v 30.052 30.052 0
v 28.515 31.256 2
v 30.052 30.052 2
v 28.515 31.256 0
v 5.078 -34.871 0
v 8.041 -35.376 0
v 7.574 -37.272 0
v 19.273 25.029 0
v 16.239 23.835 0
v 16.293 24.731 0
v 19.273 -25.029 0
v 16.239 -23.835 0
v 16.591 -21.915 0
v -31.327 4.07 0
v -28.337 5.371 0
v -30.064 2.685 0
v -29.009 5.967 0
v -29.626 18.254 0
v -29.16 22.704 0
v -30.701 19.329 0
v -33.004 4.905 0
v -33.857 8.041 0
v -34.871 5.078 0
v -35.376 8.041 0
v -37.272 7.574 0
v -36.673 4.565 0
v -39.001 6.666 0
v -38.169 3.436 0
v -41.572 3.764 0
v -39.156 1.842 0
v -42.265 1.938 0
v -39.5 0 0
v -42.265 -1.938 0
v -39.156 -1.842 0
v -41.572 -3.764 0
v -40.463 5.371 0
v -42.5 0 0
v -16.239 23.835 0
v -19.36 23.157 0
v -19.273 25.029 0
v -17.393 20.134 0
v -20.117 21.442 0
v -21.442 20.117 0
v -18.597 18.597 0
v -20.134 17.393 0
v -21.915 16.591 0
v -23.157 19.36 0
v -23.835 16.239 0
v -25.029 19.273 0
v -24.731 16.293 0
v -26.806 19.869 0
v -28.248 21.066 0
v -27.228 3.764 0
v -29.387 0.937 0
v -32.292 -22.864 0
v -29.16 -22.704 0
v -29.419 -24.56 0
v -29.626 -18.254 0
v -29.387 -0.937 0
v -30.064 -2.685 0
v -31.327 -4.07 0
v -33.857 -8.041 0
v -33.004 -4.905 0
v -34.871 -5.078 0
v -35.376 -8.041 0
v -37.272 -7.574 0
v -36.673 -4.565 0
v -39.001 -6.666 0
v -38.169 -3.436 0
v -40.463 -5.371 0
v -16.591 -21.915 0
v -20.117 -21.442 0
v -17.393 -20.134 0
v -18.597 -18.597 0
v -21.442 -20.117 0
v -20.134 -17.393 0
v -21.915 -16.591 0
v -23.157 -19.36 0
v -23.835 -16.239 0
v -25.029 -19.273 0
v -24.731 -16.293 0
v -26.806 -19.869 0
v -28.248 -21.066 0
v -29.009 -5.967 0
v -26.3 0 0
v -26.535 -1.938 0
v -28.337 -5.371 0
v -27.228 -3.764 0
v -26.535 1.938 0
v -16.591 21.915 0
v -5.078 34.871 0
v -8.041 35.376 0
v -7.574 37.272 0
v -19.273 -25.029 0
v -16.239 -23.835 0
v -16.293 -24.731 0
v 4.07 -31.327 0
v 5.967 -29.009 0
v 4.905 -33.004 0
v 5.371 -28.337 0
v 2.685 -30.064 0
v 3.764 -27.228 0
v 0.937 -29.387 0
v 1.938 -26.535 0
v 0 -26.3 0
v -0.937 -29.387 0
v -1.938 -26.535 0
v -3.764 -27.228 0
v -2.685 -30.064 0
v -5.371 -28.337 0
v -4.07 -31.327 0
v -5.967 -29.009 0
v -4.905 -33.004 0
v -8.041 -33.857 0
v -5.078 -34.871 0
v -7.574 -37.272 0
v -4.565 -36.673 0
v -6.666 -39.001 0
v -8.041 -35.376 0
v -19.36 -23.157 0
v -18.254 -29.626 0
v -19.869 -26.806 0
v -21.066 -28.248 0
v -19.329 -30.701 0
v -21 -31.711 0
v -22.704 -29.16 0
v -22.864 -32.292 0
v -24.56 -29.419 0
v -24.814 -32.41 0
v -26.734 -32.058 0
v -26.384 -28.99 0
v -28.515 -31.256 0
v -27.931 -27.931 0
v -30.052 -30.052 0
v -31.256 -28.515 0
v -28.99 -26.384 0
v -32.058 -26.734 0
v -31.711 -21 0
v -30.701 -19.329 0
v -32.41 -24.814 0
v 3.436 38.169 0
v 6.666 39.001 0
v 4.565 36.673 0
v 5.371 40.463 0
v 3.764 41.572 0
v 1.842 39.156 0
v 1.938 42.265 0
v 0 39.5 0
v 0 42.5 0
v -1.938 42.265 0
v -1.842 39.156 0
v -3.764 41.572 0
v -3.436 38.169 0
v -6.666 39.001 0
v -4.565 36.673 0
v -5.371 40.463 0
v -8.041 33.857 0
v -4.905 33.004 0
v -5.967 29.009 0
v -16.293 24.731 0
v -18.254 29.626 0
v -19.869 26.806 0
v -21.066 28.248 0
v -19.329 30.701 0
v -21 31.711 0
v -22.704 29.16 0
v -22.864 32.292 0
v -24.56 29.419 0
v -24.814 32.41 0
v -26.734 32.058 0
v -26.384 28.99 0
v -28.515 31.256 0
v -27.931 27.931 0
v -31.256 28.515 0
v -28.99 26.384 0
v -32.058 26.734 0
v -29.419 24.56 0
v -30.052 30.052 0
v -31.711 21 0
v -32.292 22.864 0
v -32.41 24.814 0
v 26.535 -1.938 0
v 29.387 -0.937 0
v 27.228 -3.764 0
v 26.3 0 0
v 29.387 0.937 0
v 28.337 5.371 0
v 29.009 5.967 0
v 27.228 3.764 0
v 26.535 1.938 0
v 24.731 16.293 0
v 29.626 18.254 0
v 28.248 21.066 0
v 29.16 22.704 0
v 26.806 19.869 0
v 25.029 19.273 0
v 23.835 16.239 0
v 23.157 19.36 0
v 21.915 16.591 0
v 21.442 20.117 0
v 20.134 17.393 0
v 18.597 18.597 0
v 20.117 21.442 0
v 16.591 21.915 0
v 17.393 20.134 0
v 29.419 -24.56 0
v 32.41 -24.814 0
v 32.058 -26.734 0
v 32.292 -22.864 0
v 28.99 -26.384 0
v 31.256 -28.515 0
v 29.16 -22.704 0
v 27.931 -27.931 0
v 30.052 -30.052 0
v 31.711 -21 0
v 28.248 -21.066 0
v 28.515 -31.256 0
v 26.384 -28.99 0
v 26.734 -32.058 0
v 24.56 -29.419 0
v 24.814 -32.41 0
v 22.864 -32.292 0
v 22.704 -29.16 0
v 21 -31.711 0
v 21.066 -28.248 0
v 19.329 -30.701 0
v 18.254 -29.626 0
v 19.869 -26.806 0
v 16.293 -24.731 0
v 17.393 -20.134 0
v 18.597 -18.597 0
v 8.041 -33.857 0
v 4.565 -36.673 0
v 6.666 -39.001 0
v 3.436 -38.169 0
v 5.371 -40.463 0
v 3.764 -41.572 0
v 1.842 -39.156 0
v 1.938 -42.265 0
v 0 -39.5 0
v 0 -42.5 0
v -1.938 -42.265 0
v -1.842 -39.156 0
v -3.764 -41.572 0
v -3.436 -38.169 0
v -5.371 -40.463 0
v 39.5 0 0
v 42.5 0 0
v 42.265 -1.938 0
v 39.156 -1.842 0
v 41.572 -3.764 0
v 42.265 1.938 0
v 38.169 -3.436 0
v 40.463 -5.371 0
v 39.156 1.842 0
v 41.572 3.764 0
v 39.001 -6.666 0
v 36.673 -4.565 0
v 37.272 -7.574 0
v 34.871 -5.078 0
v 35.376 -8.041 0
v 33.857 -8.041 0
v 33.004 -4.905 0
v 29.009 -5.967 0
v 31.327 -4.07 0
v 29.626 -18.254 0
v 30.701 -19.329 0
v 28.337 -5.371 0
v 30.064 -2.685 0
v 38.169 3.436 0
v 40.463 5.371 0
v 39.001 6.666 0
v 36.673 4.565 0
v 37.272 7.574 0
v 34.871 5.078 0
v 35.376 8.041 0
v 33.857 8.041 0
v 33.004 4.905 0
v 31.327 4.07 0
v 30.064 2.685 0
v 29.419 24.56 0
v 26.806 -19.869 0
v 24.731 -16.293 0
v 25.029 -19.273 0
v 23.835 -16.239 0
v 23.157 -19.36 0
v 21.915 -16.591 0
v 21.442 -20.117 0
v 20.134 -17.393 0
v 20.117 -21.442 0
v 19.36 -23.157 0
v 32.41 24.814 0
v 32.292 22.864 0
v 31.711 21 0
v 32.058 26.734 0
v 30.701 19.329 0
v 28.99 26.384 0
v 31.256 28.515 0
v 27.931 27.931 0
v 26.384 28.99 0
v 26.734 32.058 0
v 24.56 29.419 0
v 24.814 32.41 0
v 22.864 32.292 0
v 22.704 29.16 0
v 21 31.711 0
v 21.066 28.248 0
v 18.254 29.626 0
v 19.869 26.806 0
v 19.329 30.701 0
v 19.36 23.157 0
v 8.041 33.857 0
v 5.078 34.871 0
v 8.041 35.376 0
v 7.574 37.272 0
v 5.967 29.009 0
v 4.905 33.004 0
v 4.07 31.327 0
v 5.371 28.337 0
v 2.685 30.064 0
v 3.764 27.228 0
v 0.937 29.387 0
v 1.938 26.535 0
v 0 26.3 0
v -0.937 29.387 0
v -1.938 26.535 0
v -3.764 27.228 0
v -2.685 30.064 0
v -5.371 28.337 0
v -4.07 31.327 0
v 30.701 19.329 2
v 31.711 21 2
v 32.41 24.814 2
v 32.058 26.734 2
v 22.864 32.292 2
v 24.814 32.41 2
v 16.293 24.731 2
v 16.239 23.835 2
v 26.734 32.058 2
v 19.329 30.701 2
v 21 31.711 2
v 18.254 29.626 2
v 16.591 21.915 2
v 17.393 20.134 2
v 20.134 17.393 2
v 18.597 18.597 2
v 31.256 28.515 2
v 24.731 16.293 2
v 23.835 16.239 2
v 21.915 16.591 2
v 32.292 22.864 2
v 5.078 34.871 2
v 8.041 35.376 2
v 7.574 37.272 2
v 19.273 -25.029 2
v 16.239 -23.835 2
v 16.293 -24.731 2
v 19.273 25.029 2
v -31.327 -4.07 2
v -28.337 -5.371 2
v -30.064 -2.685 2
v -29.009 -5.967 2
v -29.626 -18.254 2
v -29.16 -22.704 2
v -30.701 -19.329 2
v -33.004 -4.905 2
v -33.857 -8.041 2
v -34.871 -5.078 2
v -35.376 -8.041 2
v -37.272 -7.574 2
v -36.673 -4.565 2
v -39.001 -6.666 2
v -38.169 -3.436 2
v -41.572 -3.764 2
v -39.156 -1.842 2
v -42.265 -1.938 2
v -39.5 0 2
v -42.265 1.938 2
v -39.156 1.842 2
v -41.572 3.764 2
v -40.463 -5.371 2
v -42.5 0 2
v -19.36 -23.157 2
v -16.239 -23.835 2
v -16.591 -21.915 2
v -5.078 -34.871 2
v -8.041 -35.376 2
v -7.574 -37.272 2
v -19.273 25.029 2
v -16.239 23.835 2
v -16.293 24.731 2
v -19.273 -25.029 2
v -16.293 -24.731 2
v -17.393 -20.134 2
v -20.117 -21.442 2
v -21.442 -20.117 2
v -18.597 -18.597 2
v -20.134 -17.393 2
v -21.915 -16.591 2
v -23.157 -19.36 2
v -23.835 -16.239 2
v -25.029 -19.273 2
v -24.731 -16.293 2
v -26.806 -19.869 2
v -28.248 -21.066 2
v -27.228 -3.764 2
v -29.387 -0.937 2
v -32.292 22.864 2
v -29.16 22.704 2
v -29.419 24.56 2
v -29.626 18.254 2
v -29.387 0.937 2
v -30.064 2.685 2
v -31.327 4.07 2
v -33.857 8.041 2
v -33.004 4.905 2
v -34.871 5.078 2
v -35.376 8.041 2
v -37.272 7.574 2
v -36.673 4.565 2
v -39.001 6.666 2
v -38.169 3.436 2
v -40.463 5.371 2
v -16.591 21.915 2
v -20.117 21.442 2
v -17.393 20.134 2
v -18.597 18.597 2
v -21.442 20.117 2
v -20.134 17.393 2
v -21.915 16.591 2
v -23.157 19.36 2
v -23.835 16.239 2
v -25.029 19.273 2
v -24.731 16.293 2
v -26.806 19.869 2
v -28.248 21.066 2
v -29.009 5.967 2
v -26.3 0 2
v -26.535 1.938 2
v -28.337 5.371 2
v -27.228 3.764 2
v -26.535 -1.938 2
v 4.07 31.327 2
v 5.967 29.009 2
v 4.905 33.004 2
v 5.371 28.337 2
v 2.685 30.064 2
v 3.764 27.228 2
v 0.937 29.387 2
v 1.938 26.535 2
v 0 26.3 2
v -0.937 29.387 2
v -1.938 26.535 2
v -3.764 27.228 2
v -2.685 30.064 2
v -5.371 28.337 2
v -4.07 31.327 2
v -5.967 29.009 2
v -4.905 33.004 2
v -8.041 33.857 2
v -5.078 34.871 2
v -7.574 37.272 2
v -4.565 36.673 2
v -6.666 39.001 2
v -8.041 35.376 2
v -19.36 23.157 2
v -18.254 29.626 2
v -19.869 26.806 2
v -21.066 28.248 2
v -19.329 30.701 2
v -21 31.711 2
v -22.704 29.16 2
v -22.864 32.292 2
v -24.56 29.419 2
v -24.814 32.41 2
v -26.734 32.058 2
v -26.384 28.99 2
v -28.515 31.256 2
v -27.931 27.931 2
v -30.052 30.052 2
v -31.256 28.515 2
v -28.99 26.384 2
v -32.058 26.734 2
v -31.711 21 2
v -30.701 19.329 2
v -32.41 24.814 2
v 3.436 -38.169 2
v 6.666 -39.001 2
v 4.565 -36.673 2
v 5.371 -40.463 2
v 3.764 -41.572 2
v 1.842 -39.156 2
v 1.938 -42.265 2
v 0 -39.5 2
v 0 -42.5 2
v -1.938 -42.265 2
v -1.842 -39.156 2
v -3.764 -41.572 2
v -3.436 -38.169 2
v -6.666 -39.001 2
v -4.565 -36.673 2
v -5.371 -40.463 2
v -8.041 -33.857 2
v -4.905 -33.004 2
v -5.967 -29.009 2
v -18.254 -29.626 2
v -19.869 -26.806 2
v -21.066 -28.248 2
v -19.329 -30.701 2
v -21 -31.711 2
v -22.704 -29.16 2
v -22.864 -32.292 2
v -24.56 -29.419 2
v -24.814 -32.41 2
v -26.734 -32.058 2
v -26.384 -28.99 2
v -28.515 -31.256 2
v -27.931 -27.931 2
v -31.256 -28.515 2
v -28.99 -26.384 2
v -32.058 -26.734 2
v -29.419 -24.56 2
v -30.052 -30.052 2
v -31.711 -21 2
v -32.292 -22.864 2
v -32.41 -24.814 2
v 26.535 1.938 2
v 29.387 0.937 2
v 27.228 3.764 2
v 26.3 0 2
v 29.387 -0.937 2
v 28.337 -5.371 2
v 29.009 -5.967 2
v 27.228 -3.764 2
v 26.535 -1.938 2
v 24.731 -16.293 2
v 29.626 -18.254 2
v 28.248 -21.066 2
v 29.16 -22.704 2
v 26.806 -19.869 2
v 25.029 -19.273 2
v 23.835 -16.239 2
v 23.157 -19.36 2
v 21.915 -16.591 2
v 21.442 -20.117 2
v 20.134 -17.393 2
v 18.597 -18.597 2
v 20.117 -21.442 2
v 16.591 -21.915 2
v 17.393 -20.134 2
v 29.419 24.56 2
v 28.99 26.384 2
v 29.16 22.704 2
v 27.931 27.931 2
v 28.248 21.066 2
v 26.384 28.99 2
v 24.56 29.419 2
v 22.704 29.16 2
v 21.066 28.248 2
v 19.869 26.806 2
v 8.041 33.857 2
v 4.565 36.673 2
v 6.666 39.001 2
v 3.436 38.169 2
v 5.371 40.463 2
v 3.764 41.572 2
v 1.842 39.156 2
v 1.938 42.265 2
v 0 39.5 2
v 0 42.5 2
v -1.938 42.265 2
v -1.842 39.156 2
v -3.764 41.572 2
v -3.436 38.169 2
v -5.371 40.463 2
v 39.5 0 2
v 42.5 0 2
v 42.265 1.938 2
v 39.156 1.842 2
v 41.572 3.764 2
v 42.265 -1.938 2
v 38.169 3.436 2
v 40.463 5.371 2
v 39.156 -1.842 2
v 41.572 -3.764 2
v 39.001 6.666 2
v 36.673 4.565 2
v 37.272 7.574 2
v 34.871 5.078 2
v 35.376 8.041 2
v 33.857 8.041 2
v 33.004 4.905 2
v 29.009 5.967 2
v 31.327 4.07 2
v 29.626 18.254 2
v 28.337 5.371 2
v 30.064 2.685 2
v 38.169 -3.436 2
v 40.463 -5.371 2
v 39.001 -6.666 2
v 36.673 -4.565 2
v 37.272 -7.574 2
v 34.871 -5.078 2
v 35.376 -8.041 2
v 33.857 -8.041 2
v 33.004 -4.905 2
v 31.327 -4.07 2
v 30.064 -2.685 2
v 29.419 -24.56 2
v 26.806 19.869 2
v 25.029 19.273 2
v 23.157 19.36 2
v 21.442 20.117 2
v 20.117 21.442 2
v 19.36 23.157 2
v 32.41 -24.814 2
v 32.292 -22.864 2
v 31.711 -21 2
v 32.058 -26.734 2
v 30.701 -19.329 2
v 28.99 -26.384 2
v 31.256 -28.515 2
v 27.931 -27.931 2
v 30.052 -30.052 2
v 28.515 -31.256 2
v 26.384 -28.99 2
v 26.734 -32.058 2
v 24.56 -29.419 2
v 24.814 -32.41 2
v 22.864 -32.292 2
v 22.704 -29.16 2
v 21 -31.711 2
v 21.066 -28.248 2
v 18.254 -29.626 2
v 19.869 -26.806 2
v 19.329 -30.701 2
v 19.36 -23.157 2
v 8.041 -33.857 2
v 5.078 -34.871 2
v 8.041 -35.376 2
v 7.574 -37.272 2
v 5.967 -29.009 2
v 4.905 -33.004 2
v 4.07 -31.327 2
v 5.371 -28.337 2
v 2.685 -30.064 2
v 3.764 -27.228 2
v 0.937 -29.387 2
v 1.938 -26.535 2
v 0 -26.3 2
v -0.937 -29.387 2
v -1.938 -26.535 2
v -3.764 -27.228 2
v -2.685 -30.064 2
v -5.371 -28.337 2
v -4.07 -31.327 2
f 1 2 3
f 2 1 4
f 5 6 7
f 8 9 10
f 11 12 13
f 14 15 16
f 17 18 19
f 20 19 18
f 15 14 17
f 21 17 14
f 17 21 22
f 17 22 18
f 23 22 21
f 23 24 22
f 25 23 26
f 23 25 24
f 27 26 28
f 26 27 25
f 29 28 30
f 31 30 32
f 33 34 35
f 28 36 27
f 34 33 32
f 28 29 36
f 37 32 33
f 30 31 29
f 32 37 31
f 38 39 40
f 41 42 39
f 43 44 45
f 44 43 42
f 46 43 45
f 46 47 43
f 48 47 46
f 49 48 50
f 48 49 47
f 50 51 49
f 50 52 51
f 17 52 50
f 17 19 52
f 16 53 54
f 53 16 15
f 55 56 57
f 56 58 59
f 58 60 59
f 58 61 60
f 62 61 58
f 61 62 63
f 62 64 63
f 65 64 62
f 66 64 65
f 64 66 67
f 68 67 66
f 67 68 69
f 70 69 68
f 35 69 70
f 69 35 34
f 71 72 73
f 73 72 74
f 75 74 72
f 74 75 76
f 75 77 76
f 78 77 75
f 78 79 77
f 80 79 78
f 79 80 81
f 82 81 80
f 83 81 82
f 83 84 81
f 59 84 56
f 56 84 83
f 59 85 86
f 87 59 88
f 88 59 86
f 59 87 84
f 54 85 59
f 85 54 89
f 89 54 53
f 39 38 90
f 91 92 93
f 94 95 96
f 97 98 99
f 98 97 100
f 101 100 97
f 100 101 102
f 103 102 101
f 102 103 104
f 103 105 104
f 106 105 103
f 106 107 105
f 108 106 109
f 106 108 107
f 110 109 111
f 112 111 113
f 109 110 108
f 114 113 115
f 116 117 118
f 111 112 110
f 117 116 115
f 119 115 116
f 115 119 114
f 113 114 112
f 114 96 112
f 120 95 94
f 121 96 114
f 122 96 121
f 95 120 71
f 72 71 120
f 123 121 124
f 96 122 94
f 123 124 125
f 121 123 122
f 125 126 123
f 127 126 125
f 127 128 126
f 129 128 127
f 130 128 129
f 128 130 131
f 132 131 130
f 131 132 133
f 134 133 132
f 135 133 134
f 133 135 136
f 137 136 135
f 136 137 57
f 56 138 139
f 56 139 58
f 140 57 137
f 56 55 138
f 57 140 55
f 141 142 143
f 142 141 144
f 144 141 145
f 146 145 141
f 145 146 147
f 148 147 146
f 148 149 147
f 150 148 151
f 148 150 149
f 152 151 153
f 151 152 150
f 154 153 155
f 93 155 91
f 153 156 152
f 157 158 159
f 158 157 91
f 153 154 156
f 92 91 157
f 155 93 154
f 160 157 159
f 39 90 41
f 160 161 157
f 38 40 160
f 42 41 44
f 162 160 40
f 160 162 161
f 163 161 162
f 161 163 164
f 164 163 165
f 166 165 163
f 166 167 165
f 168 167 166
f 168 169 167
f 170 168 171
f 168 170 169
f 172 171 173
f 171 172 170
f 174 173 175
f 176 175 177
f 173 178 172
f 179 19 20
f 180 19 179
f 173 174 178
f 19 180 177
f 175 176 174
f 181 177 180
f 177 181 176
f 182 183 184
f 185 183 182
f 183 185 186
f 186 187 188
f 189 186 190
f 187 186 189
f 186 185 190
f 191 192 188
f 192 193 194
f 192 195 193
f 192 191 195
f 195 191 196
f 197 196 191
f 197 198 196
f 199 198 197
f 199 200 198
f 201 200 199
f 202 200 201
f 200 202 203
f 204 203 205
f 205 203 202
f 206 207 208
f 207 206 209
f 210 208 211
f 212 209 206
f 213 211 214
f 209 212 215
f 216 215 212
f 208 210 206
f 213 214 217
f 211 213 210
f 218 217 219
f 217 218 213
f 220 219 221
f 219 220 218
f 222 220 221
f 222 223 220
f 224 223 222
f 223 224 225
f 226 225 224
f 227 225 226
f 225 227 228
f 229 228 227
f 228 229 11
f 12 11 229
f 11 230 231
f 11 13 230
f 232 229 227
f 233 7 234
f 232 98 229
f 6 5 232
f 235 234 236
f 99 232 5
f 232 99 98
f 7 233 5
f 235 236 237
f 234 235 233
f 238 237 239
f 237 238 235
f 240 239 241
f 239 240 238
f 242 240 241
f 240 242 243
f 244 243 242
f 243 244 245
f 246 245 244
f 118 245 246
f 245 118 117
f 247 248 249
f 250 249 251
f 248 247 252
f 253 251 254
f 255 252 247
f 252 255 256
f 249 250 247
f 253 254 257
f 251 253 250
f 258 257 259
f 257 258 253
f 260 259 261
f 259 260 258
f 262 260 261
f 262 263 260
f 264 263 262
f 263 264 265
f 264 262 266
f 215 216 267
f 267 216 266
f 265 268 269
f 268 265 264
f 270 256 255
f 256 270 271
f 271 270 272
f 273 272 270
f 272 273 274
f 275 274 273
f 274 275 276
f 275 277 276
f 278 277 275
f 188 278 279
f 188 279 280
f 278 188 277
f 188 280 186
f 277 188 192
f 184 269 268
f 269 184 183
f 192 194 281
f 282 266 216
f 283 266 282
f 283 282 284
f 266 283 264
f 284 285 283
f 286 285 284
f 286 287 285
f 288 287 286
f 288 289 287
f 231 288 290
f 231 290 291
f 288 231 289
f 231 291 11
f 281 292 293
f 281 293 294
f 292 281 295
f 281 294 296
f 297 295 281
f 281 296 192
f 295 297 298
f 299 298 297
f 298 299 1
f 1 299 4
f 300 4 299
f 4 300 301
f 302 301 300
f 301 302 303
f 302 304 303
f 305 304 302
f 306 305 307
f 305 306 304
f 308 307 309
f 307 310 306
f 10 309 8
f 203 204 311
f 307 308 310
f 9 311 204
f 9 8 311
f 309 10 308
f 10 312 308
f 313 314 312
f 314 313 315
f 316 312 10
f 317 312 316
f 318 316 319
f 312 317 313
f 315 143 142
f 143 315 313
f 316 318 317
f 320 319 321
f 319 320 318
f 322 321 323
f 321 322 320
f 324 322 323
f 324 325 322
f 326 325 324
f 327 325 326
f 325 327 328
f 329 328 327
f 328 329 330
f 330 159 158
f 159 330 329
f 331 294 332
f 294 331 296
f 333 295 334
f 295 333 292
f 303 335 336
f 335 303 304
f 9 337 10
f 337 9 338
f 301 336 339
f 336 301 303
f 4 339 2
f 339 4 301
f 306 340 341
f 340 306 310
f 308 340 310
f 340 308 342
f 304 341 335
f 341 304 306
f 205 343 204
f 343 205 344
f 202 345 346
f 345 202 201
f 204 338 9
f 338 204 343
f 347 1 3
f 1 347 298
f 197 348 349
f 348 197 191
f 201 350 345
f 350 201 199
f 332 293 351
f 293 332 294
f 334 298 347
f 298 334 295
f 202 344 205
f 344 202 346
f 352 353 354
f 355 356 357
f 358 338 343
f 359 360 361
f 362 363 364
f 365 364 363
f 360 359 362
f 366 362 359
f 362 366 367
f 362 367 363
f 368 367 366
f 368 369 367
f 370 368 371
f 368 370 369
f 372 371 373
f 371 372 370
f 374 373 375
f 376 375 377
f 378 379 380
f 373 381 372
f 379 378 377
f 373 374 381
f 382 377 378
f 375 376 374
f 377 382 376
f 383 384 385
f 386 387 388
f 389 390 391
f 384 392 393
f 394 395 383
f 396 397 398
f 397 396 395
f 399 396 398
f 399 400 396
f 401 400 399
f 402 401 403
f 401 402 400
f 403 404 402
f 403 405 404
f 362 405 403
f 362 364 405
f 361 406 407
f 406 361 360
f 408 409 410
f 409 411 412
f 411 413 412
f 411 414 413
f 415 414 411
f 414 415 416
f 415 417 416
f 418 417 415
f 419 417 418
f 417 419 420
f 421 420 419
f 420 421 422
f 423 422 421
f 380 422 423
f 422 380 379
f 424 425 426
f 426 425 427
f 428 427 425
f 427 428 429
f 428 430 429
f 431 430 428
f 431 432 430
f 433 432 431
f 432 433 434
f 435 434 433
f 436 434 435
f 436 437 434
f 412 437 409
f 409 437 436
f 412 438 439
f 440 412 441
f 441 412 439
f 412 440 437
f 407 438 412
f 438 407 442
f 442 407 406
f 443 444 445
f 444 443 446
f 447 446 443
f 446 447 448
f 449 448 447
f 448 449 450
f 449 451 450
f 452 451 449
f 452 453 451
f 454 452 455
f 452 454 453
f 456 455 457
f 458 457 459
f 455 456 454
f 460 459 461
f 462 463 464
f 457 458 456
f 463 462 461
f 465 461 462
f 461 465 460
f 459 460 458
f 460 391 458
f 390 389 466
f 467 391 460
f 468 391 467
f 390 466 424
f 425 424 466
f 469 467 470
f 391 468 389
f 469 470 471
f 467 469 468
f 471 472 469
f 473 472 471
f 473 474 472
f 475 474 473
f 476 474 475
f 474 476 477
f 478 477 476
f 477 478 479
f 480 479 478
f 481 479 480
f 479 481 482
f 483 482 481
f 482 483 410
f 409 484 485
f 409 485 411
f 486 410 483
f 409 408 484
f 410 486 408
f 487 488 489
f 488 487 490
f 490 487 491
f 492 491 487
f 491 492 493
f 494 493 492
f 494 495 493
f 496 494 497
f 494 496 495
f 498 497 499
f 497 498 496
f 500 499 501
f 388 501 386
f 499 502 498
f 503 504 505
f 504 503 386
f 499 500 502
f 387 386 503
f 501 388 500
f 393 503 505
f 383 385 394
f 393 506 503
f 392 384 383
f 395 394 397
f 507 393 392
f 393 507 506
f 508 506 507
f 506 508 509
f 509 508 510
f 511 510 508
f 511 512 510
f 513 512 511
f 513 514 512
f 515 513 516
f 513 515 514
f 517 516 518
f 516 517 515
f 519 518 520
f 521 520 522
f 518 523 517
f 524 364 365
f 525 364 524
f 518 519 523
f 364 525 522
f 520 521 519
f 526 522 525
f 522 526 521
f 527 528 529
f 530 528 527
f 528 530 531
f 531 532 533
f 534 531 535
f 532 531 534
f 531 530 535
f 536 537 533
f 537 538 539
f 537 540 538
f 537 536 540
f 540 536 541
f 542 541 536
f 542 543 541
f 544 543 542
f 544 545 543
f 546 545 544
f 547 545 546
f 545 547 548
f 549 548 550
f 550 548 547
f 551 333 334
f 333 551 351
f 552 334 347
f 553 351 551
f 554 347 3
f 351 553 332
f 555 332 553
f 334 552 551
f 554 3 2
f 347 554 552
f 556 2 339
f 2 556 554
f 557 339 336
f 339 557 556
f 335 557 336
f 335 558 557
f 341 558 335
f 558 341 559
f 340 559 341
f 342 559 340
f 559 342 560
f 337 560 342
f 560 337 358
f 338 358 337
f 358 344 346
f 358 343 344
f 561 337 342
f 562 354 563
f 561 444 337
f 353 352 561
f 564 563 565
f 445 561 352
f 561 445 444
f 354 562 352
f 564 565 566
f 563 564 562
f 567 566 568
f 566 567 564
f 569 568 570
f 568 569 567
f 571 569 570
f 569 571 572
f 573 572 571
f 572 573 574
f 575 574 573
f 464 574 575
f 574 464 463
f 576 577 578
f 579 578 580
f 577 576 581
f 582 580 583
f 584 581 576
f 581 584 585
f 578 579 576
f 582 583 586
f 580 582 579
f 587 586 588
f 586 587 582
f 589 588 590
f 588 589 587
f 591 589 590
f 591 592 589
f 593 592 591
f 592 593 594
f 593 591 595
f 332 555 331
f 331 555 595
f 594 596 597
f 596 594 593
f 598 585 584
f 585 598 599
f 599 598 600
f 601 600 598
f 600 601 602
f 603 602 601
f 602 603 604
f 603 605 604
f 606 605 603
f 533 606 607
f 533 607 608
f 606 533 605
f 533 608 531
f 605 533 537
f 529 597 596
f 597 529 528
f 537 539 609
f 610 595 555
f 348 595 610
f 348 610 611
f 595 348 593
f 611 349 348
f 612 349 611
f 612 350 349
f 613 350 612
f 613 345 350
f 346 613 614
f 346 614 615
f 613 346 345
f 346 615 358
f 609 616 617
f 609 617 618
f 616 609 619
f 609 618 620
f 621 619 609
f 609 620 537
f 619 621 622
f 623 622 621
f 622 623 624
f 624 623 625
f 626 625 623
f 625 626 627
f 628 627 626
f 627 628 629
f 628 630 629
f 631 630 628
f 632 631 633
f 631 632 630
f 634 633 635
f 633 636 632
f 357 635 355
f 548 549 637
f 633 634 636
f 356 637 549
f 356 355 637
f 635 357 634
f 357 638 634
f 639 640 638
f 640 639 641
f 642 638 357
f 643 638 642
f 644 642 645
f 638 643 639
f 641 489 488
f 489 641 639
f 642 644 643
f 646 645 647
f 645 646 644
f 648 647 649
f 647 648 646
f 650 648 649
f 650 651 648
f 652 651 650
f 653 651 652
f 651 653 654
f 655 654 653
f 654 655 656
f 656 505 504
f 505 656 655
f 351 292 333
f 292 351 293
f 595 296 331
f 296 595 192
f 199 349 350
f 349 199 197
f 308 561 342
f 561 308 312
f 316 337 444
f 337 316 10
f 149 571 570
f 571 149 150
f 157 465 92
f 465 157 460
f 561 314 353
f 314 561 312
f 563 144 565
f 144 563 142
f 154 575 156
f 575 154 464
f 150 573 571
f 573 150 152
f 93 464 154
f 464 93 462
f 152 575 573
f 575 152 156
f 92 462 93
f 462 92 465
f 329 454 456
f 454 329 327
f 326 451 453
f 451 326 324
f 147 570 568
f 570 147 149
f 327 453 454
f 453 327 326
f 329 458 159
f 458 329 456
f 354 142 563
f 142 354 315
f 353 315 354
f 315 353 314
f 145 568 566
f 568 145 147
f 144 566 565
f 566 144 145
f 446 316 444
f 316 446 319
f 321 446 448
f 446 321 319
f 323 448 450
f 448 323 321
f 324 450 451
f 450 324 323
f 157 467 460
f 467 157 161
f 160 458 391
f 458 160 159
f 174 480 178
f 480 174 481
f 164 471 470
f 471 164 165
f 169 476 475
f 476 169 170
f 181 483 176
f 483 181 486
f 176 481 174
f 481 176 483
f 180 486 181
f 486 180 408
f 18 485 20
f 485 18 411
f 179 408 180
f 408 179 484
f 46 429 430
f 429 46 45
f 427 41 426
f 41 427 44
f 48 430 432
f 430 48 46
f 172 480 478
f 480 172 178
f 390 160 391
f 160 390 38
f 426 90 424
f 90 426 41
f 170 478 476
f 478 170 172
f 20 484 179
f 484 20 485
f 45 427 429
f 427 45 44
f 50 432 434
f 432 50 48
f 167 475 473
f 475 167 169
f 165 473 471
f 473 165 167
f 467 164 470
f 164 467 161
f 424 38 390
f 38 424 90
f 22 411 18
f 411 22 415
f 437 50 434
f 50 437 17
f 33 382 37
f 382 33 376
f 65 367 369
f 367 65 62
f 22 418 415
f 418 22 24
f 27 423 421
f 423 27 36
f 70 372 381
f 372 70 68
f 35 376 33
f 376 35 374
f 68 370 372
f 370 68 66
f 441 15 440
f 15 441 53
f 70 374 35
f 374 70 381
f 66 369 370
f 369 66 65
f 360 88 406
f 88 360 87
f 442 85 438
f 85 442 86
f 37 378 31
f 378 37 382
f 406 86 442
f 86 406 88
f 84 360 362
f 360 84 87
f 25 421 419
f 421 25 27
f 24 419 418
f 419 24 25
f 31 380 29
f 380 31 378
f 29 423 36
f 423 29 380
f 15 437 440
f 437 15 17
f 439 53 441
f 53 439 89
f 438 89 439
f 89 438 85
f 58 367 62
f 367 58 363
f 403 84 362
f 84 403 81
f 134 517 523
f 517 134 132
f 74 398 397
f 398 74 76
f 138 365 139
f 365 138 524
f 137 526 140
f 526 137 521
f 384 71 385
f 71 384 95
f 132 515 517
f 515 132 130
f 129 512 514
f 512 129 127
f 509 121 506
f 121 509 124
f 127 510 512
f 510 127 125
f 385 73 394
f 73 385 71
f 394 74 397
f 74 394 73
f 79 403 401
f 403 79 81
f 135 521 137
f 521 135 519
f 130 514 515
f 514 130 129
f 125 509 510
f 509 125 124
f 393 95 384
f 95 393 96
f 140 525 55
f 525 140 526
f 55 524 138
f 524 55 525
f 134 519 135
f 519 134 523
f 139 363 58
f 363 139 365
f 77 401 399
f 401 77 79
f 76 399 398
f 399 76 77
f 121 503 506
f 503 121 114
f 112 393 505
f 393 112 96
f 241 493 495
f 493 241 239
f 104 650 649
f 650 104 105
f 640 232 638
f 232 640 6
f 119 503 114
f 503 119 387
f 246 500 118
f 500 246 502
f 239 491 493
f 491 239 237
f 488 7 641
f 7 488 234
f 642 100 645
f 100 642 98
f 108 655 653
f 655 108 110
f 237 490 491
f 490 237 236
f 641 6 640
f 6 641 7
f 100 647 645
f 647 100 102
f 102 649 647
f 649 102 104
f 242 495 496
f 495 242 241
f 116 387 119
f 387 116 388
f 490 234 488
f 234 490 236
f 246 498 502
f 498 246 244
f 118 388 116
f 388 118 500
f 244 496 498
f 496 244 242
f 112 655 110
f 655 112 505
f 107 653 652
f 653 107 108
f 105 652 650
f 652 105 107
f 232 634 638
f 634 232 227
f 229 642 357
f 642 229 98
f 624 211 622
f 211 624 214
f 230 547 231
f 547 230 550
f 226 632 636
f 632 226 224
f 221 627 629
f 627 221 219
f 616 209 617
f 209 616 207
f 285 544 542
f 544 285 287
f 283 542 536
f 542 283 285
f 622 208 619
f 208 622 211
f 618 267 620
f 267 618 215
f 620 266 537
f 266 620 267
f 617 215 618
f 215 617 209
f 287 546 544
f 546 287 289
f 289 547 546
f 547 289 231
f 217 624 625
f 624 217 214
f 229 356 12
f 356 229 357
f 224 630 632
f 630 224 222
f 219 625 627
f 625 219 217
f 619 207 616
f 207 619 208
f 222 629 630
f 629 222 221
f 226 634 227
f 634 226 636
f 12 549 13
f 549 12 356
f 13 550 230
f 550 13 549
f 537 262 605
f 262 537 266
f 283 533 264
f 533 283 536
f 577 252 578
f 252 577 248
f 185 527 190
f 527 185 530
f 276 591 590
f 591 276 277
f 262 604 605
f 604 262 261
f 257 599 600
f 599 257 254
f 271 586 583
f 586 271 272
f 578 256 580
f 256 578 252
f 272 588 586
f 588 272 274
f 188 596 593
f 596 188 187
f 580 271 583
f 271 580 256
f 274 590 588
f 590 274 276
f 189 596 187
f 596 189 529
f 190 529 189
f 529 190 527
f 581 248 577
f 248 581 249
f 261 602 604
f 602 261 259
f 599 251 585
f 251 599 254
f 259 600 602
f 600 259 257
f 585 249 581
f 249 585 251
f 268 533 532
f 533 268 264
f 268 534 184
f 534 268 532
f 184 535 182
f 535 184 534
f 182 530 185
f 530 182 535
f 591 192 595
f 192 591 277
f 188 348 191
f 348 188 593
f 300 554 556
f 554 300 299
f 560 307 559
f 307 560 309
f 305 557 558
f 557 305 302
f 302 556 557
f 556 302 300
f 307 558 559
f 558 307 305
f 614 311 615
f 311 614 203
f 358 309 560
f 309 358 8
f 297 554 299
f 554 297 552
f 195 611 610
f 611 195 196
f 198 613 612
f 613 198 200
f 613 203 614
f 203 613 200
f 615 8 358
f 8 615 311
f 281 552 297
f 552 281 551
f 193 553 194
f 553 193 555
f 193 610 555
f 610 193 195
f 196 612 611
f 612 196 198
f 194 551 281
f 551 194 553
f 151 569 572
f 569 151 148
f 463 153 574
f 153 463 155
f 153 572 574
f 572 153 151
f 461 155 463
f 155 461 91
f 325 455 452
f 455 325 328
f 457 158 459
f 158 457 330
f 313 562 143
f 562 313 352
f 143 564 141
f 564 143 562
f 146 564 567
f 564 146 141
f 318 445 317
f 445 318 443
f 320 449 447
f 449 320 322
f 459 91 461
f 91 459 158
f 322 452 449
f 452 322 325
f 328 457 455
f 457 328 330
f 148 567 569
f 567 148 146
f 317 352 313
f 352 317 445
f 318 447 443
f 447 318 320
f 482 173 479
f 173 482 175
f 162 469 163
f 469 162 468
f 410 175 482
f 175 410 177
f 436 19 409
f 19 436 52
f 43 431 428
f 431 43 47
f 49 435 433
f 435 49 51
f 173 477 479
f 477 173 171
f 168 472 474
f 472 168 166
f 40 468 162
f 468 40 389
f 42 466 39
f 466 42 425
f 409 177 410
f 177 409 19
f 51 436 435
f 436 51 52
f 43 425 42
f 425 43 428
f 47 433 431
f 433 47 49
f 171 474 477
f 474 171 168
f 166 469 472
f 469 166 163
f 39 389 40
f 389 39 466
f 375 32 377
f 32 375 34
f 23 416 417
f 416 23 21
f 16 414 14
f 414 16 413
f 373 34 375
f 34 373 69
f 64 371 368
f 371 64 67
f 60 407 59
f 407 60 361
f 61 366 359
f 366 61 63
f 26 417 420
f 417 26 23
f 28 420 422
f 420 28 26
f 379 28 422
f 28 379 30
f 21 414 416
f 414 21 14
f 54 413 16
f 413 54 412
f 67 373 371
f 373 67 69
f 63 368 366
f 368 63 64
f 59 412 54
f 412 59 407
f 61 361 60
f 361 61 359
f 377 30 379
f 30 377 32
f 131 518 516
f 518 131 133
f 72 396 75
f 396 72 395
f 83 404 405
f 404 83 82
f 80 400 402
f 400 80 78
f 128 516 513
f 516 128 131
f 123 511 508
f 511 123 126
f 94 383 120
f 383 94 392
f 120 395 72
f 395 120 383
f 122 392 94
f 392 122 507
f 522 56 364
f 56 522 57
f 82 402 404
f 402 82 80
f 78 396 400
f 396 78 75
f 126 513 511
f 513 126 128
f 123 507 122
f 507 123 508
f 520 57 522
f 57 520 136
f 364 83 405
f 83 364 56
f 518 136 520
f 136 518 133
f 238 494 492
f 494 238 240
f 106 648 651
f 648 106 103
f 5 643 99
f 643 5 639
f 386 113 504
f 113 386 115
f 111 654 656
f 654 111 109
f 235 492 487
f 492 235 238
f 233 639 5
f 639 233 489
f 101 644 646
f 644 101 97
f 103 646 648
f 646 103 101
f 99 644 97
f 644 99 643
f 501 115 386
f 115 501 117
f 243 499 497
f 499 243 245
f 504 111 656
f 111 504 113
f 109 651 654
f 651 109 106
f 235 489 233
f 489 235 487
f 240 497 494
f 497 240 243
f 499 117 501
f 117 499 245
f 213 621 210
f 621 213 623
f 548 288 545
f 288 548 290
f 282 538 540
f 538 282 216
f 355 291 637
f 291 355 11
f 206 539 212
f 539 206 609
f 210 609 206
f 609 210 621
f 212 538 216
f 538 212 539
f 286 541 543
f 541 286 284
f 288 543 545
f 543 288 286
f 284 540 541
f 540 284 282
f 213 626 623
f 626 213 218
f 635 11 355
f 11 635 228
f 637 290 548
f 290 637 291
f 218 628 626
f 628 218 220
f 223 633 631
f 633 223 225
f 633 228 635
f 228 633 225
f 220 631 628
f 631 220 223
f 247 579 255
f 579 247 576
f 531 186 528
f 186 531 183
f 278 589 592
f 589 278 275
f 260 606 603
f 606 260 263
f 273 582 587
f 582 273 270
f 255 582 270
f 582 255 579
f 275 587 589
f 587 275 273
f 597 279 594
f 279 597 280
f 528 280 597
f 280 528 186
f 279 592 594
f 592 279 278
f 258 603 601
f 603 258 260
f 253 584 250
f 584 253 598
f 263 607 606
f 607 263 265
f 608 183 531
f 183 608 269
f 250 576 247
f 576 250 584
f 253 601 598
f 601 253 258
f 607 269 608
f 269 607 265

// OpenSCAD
magnets = 8; /* Magnets in holder */

/* Parameters in mm */
magnet_diameter = 10;
magnet_radius = (magnet_diameter / 2) + 0.1;
magnet_height = 2;
thickness = 3; /* Extra thickness around magnets */
wheel_diameter = 85;
wheel_radius = wheel_diameter / 2;

translation = wheel_radius - magnet_radius - thickness;

hull_divider = 3; /* Amount to divide the hull by */


module magnet_transform(i, x, radius)
{
	rotate([0, 0, (360 / magnets) * i]) {
		translate([x, 0, 0]) {
			cylinder(magnet_height, r = radius, true);
		}
	}
}

difference()
{
	/* Outer shell, magnets subtracted from */
	union()
	{
		for (i = [1:magnets]) {
			magnet_transform(i, translation, magnet_radius + thickness);
			hull()
			{
				magnet_transform(i, translation, (magnet_radius + thickness) / hull_divider);
				magnet_transform(i + 1, translation, (magnet_radius + thickness) / hull_divider);
			}
		}
	}
	/* Magnets to be subtracted */
	union()
	{
		for (i = [1:magnets]) {
			magnet_transform(i, translation, magnet_radius);
			/* Open magnet rings */
			/* magnet_transform(i, translation + thickness + magnet_radius, magnet_radius * 1.7); */
		}
	}
}

/* Wheel reference */
/*translate([0, 0, -(60)]) {
	cylinder(60, r = 45, true);
}*/
